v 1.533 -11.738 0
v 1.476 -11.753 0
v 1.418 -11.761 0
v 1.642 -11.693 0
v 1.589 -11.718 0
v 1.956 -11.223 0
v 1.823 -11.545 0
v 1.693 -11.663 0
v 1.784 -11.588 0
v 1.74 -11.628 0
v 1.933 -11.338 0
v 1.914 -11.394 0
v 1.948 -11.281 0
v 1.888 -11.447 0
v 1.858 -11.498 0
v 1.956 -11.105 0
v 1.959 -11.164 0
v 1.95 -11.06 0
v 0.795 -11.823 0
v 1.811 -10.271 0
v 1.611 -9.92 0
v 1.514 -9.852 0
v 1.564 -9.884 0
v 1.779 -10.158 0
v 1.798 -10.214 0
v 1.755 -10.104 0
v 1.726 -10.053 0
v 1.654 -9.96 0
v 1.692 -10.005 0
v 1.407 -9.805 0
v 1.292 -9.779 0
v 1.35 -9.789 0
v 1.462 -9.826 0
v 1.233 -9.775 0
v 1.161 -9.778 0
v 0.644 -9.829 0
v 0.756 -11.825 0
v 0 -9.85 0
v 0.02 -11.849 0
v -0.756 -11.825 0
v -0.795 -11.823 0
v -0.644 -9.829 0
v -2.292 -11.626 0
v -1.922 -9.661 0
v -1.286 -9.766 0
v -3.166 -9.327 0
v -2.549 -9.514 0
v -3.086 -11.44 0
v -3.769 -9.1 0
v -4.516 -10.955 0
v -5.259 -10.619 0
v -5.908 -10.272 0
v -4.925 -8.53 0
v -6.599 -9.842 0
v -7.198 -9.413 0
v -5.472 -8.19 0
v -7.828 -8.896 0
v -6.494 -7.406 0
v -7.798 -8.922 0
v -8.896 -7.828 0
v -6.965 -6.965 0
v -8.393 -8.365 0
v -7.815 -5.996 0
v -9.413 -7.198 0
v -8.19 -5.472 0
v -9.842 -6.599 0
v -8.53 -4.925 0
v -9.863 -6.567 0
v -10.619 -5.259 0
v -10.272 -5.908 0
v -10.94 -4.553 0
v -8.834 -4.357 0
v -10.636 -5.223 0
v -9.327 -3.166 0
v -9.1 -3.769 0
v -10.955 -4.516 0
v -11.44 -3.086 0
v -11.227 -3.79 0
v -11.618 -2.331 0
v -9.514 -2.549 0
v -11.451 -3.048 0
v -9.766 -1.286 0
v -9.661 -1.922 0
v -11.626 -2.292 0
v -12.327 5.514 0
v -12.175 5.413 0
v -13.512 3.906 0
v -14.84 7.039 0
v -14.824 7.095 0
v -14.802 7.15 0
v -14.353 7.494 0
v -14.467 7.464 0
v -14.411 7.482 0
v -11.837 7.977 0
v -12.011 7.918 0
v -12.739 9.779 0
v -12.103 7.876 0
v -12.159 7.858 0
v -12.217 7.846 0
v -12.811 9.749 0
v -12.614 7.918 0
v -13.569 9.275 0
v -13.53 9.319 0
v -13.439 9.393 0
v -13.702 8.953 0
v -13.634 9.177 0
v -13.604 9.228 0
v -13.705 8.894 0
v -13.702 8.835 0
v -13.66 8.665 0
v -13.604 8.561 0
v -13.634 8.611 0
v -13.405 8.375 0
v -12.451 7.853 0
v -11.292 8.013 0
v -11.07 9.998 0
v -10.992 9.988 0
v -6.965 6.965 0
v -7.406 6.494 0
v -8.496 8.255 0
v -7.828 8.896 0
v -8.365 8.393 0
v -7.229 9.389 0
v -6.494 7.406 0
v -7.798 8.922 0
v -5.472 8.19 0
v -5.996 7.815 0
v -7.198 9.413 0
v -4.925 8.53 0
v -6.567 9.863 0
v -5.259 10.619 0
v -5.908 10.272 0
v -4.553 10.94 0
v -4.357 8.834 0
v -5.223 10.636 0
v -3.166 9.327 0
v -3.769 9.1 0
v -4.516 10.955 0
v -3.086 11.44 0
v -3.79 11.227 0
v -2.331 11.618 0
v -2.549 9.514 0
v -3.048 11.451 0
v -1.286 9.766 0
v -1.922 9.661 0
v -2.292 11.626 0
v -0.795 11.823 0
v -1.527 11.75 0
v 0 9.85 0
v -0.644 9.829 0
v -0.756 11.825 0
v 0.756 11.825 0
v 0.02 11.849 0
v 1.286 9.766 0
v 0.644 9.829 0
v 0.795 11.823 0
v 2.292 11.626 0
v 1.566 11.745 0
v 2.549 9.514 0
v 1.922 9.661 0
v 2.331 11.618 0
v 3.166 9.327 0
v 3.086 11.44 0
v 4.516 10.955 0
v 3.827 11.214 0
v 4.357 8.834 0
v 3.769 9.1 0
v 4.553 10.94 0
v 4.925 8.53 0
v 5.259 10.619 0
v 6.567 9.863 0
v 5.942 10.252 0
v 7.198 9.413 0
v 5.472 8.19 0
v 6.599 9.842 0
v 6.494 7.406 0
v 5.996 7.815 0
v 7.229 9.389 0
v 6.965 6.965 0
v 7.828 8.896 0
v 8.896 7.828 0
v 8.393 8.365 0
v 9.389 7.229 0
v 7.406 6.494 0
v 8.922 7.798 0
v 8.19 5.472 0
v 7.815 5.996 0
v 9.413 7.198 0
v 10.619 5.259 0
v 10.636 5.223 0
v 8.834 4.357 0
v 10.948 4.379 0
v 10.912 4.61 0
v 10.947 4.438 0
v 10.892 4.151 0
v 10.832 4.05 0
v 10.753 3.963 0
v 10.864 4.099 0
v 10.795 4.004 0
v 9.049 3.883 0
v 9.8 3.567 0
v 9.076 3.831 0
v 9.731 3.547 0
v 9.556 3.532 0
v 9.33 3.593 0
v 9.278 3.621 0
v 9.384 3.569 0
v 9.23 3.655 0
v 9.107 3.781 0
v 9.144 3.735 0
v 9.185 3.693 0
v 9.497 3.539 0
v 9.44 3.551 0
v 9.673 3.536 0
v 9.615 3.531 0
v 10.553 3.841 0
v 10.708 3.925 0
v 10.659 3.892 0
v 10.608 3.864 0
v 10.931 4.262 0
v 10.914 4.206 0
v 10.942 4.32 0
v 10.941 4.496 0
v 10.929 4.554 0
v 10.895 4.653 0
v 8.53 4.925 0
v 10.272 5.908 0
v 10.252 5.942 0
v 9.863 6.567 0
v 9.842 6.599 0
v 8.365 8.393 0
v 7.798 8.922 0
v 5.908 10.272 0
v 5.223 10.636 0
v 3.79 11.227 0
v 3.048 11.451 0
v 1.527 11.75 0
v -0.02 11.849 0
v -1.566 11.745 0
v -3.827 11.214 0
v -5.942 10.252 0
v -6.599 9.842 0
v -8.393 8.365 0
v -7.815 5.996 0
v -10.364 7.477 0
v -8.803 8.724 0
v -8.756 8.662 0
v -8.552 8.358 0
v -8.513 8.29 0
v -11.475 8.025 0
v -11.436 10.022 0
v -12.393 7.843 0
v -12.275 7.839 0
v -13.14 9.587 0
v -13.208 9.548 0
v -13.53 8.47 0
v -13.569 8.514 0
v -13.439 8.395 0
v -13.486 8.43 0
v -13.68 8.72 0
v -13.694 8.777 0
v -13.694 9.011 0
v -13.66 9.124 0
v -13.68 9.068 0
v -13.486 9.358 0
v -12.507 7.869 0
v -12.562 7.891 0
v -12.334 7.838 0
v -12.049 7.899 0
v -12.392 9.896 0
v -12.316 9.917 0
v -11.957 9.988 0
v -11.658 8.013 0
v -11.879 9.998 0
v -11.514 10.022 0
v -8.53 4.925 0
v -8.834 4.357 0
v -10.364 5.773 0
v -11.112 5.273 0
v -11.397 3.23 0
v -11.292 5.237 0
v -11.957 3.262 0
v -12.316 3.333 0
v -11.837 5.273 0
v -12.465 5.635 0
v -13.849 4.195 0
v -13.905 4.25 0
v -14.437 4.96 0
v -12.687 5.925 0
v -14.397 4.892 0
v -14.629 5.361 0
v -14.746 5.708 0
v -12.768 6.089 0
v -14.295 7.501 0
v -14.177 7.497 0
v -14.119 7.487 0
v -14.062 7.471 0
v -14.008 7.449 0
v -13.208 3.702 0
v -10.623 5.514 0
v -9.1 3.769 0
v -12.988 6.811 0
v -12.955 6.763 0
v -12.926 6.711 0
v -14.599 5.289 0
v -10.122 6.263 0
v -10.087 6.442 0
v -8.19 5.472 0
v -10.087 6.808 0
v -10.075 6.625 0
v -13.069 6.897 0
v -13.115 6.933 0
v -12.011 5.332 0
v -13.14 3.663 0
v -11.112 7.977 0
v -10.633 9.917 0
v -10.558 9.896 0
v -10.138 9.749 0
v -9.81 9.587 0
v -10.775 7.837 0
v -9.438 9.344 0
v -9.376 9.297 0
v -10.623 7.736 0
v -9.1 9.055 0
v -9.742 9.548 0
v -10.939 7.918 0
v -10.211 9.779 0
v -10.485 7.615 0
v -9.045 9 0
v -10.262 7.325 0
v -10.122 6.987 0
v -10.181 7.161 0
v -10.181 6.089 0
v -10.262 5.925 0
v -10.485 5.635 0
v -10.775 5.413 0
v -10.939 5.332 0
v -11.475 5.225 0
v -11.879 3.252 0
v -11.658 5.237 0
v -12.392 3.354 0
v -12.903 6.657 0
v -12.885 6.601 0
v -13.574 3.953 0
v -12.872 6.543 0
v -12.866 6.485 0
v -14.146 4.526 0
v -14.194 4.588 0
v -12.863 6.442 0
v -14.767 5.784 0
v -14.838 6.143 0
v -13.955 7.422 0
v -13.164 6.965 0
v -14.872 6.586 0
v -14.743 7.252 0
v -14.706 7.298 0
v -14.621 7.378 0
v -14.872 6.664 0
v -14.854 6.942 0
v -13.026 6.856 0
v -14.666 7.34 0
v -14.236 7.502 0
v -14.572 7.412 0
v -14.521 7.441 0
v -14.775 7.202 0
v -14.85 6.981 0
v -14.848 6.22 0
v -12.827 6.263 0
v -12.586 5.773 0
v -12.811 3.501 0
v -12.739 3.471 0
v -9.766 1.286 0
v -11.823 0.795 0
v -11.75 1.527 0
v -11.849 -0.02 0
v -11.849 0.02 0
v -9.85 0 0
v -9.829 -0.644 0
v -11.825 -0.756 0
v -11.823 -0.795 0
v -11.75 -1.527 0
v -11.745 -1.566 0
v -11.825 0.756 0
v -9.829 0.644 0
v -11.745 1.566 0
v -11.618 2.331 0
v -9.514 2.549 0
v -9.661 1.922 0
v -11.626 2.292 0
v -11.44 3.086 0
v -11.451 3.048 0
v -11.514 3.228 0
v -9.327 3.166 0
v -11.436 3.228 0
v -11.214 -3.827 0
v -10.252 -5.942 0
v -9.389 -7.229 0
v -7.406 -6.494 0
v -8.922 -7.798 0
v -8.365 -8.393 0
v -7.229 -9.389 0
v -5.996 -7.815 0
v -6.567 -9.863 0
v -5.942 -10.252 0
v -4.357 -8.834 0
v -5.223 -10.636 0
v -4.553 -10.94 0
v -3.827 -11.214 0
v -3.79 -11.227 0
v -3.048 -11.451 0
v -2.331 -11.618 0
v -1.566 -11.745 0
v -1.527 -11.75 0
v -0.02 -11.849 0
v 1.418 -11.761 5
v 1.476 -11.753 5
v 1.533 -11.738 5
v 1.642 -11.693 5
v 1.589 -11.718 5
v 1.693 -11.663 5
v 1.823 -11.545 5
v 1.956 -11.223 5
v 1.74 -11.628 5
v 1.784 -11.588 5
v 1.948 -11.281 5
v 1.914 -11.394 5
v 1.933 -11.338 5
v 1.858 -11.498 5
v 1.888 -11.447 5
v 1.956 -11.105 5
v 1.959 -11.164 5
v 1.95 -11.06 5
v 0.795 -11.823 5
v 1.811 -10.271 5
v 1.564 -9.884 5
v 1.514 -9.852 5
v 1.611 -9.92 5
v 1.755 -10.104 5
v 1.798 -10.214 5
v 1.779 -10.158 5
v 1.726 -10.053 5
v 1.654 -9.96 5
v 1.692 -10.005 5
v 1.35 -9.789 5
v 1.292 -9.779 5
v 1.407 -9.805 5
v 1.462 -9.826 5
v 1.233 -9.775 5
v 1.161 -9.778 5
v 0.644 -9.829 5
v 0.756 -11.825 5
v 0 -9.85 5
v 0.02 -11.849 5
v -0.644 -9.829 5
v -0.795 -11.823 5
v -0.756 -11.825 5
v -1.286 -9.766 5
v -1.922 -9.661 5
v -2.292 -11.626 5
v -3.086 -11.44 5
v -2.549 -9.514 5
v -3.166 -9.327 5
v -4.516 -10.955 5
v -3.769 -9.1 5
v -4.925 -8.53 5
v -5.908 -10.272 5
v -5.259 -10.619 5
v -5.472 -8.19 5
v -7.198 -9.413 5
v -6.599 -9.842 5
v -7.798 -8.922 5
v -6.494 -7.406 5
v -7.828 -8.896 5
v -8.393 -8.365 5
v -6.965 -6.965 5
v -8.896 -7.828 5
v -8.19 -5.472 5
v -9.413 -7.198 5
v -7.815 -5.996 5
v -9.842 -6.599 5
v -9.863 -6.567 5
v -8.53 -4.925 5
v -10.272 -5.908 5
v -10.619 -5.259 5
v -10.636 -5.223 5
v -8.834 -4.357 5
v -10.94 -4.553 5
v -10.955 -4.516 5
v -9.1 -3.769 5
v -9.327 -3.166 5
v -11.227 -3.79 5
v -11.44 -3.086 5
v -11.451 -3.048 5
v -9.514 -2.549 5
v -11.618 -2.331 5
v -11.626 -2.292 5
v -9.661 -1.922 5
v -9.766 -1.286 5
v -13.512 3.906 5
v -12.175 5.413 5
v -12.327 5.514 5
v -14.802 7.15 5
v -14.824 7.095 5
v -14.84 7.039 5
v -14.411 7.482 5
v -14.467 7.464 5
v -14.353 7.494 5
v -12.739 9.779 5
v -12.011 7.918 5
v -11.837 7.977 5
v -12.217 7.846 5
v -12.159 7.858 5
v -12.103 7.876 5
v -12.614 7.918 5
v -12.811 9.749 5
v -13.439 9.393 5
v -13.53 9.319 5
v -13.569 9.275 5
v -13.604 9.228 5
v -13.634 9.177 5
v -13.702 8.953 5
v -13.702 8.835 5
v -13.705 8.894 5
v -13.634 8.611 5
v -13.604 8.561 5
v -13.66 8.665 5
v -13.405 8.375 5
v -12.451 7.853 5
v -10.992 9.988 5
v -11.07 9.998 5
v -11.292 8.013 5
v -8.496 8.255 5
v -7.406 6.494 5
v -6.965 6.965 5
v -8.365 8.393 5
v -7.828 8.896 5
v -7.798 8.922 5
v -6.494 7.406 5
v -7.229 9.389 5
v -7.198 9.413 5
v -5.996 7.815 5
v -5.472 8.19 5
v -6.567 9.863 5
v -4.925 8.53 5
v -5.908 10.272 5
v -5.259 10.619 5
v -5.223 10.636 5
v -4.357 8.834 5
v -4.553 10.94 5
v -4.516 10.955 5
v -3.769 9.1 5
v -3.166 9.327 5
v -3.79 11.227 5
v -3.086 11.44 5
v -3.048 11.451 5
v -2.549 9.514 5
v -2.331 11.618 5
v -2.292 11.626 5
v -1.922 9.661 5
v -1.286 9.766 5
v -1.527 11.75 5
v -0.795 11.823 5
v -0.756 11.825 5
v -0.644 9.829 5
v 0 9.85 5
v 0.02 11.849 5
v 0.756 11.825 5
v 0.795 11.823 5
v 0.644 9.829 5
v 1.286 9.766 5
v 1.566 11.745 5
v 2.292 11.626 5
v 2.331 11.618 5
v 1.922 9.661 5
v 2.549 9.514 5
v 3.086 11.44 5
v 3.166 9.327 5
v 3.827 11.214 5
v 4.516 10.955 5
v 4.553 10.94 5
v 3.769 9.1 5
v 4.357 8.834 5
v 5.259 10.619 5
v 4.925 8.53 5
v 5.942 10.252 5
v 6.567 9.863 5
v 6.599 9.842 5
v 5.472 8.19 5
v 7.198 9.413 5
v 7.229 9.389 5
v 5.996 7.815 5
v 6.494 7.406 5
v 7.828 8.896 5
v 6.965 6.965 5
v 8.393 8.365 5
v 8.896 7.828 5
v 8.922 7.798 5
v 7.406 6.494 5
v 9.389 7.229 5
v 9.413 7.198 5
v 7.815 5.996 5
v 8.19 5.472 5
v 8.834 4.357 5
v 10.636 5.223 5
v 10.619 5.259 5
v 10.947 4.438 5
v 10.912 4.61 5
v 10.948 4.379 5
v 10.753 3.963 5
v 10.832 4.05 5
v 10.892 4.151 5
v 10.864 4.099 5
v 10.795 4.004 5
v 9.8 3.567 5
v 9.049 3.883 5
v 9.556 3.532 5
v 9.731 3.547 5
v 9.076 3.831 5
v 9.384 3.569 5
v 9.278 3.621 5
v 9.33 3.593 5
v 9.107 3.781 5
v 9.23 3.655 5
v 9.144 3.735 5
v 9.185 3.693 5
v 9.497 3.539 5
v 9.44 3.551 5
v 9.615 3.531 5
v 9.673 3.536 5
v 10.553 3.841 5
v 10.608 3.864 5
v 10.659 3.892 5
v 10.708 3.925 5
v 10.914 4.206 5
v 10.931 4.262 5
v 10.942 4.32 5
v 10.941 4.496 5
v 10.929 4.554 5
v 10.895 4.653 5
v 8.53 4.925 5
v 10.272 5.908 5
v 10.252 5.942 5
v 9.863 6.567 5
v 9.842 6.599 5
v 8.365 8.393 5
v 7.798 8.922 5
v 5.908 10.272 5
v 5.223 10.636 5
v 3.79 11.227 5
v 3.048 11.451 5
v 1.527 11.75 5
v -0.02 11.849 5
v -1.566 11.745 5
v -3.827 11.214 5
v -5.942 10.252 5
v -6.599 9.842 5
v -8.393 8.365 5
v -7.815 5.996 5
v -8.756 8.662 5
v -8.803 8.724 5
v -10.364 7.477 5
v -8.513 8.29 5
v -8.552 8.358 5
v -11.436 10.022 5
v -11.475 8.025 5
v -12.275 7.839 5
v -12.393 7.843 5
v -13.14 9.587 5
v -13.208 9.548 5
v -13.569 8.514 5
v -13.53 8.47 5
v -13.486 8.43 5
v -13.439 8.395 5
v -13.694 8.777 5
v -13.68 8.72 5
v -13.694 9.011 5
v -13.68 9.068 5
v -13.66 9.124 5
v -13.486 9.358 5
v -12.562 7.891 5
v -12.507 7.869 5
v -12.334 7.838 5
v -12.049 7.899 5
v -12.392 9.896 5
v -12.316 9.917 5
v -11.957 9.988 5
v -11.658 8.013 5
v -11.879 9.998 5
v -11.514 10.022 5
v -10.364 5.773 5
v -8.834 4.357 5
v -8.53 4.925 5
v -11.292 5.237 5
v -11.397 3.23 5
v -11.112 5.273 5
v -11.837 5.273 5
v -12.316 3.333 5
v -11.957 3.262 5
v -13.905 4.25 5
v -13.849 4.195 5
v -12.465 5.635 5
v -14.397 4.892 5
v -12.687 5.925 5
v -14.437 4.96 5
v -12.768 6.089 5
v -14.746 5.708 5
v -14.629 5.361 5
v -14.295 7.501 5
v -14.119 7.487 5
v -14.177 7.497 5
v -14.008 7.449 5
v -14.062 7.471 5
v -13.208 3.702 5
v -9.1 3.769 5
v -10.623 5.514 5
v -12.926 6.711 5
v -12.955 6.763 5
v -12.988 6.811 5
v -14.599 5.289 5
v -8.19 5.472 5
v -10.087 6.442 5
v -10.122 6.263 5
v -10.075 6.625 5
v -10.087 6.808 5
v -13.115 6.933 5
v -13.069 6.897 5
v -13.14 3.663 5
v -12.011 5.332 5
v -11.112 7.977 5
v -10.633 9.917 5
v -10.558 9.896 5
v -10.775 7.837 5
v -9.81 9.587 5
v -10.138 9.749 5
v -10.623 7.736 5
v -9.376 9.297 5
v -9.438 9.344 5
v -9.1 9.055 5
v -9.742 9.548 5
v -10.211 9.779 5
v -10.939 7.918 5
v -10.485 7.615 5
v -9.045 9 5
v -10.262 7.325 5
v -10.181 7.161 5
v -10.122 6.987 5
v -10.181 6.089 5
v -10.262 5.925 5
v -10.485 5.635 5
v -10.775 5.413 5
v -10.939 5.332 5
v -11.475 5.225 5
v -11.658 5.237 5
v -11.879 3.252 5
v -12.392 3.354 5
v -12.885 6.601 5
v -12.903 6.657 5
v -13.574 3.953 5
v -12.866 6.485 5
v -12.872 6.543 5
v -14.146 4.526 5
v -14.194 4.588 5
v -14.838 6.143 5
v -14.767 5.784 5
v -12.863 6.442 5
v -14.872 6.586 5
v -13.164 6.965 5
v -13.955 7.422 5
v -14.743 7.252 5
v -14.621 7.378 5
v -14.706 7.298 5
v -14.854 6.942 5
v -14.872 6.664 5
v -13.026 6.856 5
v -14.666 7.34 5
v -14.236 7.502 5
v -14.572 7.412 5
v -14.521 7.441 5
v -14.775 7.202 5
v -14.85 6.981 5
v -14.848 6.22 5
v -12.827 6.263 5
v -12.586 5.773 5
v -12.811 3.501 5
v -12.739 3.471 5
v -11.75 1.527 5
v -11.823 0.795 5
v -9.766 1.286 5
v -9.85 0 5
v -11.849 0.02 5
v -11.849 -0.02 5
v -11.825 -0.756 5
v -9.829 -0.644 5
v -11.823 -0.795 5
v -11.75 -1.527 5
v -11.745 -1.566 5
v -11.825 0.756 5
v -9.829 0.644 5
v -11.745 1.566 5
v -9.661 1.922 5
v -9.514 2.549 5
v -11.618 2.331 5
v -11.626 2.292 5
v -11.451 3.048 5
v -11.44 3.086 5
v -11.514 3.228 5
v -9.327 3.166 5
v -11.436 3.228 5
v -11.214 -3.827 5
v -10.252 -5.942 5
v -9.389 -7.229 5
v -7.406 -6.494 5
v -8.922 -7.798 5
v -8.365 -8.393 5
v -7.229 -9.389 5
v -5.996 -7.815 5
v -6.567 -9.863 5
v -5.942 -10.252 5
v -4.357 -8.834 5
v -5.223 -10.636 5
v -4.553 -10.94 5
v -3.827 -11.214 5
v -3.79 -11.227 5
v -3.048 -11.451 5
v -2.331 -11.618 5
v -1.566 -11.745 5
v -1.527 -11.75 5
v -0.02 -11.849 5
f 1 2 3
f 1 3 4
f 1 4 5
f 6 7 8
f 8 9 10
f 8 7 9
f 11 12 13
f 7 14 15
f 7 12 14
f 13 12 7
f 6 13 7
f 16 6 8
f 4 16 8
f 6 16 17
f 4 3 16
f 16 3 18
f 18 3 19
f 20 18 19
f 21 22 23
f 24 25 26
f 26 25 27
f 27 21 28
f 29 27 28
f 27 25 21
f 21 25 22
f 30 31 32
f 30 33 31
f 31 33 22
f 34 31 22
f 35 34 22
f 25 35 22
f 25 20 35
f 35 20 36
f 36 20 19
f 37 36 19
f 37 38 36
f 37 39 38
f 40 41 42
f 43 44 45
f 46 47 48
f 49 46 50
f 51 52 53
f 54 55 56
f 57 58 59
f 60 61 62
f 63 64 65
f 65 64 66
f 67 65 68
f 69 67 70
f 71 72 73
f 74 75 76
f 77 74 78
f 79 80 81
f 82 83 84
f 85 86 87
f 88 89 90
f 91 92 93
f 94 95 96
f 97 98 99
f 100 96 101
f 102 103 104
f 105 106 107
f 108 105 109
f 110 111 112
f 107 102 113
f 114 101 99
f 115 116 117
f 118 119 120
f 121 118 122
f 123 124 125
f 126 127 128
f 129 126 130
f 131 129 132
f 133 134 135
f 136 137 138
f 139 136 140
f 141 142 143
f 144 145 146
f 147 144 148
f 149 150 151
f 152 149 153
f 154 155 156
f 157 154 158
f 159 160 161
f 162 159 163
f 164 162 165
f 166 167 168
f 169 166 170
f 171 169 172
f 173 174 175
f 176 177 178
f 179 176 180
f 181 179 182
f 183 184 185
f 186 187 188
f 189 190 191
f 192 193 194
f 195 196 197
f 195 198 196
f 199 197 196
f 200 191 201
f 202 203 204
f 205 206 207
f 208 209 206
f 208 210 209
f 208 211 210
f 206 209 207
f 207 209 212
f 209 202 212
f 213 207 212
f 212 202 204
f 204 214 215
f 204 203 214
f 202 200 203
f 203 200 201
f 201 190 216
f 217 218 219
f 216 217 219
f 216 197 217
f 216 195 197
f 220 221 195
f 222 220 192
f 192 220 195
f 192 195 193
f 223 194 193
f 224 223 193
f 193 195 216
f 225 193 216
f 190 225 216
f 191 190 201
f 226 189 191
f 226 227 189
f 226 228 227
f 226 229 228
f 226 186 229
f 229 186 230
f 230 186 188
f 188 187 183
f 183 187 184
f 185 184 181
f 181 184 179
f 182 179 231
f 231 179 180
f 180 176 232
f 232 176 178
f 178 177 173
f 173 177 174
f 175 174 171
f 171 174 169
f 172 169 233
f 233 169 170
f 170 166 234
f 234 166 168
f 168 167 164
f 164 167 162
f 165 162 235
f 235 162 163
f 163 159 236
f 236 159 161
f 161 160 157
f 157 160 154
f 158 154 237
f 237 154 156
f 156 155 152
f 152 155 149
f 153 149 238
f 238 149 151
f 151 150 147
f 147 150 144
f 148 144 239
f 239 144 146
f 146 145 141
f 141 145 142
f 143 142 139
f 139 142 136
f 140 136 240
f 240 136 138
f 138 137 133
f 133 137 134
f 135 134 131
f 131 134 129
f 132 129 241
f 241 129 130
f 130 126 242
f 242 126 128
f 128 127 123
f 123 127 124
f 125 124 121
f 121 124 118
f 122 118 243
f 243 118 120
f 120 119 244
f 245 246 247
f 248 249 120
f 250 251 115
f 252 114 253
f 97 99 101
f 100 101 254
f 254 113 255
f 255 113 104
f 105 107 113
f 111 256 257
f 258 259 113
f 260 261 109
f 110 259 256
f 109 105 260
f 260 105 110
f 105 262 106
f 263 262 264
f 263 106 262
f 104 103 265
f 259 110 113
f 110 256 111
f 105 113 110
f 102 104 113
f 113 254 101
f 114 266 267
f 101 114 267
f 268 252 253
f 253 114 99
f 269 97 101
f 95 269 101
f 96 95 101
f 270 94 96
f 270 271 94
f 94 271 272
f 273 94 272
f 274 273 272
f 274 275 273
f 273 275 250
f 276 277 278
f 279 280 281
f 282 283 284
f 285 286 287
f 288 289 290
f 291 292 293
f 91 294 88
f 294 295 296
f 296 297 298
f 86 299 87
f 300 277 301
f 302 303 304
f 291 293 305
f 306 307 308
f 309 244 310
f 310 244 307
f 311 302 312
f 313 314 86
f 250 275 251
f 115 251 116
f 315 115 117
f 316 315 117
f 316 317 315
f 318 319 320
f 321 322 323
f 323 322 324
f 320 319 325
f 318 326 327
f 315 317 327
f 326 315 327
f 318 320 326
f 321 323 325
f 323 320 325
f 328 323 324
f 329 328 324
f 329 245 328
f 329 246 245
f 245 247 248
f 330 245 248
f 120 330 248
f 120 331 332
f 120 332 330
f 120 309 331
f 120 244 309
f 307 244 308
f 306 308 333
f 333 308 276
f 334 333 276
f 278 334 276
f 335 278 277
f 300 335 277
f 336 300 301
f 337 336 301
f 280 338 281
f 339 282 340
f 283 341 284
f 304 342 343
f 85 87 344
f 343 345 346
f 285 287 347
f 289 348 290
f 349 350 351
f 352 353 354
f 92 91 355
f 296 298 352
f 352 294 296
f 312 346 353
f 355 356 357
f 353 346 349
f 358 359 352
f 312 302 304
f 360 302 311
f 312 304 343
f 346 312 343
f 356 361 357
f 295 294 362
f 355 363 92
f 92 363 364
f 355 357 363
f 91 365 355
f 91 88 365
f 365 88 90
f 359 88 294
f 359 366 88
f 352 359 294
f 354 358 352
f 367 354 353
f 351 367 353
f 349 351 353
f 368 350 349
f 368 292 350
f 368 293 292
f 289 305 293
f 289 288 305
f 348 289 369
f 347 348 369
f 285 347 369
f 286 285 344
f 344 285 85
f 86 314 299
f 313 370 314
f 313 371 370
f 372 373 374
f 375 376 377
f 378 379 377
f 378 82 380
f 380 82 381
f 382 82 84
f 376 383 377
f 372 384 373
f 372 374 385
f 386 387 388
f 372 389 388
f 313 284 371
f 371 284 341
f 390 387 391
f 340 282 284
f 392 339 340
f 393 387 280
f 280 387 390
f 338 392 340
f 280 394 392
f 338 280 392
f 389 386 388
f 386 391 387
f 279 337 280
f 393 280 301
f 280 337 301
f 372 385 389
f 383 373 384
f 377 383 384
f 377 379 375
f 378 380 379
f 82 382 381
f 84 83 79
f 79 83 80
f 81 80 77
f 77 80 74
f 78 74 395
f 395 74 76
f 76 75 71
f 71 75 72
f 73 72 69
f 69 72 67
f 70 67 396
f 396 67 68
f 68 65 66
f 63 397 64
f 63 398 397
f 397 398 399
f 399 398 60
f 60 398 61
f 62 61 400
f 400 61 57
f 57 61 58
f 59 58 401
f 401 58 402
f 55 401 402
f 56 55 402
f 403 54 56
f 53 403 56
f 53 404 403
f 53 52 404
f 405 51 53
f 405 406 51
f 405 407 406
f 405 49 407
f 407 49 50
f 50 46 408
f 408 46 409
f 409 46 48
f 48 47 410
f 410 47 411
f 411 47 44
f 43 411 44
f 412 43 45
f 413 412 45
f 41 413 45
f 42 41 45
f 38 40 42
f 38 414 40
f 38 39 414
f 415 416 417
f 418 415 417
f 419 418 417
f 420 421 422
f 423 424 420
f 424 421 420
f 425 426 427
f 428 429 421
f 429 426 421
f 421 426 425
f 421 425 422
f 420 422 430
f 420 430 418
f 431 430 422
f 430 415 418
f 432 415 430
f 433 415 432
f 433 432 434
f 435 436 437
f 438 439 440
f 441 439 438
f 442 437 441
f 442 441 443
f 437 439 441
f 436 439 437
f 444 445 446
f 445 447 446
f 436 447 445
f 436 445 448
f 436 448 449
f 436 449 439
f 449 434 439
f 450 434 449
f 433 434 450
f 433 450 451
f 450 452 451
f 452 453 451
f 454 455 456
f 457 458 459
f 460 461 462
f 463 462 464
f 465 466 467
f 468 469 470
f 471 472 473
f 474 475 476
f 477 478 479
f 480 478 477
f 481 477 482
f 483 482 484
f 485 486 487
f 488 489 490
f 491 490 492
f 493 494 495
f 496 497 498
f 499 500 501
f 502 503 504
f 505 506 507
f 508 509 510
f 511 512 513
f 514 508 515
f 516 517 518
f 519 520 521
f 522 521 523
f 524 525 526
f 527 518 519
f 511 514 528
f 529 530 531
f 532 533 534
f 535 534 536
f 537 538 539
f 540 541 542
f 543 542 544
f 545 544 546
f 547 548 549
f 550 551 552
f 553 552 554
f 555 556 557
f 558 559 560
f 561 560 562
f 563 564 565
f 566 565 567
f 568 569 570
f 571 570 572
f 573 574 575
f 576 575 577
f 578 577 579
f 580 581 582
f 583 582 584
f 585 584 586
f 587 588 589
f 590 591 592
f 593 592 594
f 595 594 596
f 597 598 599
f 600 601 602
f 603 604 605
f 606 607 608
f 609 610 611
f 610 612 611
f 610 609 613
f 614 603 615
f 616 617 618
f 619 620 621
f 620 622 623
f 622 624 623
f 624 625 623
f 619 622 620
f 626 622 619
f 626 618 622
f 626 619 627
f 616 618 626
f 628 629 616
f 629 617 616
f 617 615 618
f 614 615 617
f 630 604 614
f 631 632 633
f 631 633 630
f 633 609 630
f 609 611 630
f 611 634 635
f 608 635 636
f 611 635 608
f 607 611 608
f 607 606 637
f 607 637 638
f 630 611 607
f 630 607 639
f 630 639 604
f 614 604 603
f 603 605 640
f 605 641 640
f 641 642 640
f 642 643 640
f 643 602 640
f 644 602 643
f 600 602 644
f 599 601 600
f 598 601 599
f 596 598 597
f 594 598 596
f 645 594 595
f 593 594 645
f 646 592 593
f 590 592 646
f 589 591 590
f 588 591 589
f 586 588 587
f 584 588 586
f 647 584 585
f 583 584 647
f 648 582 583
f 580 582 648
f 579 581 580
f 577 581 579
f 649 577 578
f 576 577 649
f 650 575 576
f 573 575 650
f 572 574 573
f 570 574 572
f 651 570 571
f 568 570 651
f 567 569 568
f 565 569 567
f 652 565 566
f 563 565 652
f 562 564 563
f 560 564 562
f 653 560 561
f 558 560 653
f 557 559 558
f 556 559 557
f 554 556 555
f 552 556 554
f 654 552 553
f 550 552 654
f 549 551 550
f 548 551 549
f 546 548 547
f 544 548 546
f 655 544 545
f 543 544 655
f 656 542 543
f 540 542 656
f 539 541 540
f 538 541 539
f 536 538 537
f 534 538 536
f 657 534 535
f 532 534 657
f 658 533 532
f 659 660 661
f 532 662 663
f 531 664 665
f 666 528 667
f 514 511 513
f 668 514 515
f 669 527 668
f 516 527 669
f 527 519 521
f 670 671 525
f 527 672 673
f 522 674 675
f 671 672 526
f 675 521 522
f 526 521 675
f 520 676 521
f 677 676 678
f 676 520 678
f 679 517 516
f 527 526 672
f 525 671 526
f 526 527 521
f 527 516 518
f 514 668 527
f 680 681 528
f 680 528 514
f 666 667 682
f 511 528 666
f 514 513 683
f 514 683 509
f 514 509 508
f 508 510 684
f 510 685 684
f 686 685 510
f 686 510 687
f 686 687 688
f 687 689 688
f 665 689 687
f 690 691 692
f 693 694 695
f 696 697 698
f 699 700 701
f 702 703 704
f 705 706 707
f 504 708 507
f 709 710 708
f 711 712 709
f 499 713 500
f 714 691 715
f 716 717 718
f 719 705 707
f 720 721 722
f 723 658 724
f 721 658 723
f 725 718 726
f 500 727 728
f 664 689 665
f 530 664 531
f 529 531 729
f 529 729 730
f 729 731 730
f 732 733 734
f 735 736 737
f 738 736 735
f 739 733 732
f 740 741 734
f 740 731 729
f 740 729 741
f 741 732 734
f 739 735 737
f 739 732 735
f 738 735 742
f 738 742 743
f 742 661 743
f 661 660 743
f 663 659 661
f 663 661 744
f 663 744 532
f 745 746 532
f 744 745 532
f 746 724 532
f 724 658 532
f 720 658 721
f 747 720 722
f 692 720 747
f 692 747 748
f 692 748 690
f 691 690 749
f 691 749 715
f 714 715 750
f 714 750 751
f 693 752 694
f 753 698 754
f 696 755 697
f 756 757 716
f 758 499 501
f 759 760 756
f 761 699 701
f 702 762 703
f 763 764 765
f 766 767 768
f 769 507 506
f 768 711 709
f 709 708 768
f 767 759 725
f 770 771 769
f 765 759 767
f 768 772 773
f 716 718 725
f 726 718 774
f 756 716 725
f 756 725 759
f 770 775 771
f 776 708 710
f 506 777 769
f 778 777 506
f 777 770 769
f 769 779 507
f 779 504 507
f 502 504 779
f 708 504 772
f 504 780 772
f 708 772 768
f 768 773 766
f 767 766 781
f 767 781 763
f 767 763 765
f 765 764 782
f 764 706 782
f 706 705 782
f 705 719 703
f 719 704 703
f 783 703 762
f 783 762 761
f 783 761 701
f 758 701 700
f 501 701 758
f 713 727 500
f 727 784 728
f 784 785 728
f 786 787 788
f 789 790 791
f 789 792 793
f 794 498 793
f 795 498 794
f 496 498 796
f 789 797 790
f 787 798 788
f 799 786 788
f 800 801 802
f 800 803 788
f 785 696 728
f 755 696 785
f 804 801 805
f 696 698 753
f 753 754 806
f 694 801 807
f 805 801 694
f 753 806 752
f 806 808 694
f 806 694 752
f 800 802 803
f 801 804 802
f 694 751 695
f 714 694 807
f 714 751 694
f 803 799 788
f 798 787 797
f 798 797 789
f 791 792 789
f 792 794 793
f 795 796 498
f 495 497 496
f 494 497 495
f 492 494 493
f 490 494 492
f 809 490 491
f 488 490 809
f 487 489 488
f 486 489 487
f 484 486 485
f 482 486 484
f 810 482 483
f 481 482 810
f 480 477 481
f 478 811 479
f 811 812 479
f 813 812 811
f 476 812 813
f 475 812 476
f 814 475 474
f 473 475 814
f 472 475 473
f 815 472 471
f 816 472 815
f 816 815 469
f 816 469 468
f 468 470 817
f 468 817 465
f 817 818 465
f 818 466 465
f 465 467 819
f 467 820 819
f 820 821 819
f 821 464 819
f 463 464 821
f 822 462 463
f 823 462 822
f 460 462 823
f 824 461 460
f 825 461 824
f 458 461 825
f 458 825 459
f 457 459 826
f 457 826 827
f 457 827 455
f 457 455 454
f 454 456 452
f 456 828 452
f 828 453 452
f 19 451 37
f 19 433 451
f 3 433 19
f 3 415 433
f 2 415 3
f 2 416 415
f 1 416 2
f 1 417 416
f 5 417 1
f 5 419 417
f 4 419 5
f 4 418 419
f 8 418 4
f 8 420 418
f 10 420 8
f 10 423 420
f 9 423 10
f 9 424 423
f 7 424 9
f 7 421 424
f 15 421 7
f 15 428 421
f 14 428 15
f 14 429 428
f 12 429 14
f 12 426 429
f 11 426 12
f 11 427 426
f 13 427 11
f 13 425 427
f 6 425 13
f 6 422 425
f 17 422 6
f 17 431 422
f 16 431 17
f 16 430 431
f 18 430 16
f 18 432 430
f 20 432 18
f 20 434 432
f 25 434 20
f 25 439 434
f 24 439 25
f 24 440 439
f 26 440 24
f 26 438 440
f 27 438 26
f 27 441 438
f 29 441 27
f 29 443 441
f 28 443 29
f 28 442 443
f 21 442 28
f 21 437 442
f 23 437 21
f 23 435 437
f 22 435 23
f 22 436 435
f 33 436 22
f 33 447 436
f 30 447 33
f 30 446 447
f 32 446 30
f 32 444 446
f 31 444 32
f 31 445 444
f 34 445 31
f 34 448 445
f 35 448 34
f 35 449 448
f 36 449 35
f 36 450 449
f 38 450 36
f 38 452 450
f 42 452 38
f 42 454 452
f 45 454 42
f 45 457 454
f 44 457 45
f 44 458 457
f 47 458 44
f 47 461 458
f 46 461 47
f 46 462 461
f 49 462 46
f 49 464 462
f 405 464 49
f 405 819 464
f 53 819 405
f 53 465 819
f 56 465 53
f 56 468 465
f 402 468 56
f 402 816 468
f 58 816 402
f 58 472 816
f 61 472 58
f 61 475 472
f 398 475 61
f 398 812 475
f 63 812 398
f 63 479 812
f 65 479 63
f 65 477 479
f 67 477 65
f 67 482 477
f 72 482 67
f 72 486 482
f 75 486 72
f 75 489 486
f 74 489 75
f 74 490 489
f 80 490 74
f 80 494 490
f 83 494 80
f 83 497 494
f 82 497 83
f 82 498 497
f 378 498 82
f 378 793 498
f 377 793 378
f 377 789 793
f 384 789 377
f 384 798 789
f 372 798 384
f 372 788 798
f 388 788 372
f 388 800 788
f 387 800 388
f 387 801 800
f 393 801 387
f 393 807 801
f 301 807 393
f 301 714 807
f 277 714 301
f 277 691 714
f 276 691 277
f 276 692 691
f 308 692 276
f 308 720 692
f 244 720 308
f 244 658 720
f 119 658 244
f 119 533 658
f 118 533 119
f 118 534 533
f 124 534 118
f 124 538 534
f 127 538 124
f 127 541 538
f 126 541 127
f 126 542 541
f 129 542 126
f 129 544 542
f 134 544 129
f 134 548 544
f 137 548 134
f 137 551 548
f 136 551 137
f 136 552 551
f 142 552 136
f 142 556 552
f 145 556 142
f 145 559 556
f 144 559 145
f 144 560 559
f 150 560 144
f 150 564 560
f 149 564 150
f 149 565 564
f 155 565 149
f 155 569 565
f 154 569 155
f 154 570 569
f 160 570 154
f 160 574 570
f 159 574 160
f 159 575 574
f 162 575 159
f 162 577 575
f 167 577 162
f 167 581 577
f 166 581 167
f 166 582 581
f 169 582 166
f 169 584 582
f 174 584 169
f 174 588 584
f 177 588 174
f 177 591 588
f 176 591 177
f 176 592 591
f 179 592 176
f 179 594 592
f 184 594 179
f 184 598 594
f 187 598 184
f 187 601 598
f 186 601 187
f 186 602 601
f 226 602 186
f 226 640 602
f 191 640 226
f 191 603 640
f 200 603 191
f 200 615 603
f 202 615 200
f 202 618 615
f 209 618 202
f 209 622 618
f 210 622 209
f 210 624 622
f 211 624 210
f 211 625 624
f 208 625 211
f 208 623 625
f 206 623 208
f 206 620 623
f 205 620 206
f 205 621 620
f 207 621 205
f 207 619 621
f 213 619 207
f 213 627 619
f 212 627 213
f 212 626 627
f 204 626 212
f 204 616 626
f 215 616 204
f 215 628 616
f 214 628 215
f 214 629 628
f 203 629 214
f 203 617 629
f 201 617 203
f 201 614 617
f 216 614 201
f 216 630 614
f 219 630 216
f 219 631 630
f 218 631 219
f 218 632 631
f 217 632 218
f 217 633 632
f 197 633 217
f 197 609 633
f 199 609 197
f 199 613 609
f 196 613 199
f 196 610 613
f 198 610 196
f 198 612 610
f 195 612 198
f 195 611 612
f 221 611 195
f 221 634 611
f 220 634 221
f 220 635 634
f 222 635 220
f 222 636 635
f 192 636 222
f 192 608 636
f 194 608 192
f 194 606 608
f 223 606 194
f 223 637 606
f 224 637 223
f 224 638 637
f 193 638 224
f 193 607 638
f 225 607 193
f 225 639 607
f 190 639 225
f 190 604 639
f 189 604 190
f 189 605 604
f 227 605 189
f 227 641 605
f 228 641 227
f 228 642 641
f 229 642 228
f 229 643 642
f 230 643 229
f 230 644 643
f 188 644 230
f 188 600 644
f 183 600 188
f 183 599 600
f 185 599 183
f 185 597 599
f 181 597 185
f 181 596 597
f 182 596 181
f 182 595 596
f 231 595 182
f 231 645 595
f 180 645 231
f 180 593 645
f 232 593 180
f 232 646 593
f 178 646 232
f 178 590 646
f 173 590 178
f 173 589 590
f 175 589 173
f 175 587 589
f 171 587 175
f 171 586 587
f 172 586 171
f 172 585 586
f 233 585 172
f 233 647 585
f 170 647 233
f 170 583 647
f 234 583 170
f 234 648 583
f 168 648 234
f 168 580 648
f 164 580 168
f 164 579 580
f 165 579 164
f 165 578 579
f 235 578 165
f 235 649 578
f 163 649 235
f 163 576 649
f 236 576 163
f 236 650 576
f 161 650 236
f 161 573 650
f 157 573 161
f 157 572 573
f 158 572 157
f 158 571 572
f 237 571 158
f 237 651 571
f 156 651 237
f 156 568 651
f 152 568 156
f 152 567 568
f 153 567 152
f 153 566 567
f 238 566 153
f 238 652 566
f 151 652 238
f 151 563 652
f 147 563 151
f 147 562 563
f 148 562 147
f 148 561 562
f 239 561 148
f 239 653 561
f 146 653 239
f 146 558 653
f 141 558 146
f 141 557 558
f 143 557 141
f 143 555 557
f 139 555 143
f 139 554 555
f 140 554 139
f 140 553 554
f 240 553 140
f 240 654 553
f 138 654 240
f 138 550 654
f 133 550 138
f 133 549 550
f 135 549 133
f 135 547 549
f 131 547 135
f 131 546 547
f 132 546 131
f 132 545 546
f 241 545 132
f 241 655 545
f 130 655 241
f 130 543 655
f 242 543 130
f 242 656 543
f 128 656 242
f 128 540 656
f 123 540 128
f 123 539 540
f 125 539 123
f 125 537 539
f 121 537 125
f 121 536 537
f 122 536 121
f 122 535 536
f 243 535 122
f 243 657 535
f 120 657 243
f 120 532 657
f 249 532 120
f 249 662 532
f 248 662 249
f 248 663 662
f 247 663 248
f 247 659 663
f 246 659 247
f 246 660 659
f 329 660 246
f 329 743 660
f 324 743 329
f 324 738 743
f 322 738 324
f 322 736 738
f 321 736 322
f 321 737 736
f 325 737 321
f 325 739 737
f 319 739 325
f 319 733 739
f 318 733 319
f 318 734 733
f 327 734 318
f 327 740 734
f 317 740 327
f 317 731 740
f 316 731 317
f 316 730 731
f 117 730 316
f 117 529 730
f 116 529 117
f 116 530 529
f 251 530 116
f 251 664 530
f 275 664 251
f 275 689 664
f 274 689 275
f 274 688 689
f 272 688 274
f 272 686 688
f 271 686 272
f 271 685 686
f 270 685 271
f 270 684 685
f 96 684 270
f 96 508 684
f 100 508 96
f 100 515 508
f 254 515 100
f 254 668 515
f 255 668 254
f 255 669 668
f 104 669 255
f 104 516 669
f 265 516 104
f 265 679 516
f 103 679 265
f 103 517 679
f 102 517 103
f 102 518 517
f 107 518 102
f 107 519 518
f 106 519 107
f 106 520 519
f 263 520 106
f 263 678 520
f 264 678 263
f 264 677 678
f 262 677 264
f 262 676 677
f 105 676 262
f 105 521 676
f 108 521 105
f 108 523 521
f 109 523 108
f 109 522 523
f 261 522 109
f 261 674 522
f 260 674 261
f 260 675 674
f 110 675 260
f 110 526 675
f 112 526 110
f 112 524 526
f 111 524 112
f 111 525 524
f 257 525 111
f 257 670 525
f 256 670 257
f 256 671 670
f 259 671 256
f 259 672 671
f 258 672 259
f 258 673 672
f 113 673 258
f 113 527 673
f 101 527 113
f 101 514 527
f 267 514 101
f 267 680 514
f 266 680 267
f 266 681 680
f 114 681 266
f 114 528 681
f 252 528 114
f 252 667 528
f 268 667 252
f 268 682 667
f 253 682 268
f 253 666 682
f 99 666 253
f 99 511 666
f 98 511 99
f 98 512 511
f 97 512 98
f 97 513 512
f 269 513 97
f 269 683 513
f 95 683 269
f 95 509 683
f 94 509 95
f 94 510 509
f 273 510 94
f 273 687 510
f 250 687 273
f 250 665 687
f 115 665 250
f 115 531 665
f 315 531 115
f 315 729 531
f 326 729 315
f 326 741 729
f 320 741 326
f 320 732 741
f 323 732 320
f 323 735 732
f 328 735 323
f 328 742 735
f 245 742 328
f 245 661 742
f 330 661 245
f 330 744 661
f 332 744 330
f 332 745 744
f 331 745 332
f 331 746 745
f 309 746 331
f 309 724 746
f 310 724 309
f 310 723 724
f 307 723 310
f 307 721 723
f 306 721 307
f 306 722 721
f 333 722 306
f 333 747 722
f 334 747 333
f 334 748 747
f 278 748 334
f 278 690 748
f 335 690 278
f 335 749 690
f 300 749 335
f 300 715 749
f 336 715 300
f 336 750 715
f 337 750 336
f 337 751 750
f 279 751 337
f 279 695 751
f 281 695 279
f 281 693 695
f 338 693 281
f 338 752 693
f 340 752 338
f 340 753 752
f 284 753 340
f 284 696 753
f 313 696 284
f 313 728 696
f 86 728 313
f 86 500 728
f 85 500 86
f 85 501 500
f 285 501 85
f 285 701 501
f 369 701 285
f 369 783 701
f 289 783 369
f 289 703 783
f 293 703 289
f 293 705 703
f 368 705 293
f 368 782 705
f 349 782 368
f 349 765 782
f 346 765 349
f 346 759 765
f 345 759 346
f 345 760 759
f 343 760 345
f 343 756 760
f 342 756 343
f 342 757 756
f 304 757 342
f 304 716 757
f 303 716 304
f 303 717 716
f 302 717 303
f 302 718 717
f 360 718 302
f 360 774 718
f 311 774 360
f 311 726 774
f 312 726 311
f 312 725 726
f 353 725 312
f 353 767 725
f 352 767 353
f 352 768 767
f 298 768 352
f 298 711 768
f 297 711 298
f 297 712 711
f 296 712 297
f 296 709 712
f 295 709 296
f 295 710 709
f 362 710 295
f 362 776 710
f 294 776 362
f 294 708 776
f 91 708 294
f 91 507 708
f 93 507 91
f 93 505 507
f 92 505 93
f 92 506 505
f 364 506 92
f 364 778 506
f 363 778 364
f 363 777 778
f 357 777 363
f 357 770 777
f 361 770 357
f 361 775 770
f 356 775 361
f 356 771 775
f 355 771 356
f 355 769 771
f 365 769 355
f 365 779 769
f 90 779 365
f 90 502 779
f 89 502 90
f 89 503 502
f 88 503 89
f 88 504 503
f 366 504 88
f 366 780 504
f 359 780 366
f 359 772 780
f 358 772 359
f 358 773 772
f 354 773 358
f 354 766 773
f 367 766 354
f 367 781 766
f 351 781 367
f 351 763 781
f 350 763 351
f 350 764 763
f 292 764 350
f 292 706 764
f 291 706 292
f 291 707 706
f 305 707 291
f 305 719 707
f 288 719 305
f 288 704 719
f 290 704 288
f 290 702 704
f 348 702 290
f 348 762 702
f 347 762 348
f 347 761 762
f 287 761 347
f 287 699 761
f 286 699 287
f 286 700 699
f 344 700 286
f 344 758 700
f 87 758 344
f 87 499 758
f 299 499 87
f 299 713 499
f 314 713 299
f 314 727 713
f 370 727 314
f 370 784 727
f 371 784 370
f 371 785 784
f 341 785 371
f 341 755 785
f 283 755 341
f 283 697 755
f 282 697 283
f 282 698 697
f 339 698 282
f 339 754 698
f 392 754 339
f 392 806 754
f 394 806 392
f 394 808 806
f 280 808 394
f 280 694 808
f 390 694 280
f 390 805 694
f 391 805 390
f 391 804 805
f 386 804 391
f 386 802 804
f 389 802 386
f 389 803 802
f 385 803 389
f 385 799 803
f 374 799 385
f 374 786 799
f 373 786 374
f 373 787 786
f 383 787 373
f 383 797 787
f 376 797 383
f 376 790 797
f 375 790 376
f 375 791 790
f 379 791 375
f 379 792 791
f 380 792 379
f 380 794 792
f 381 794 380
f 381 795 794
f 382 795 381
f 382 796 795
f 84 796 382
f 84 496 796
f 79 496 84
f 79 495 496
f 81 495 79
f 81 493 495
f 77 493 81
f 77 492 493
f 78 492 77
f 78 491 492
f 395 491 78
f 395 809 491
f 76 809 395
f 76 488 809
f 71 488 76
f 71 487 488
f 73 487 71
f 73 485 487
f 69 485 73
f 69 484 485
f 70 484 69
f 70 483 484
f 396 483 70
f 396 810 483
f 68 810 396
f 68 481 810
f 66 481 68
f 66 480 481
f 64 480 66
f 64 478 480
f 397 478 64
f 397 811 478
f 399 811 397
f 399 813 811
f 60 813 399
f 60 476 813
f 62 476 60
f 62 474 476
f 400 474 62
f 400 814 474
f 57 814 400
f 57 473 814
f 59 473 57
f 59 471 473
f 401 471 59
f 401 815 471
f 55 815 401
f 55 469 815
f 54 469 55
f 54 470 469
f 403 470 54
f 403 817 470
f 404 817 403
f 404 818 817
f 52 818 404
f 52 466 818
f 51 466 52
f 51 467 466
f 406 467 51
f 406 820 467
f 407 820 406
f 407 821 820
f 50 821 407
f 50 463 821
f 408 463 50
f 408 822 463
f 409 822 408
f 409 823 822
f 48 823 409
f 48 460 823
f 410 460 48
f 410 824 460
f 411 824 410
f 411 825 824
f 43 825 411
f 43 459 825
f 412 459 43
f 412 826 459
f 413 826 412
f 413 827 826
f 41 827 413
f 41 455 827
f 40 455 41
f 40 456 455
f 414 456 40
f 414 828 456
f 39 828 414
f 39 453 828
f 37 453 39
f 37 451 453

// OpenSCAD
// ==========================================
// Proyecto: piezas3D – Puntero láser estelar
// Componente: Grapa del cable del láser
// Descripción: Anillo abierto que se calza a presión sobre el tubo del láser, entre la tapa
//              trasera y la cuna, con un ojal exterior a angulo_cable donde los 2 hilos entran a
//              presión por una ranura. Mantiene el cable pegado al láser y hace de alivio de tensión:
//              un tirón del cable queda en la grapa y no llega a los contactos. Se imprime plana.
// ==========================================

// --- PARÁMETROS Y CONSTANTES ---
include <puntero_laser_parametros.scad>

/* [Hidden] */
r_int_grapa = diametro_laser/2 - holgura("presion");
r_ext_grapa = r_int_grapa + pared_grapa;
r_int_ojal = (2*d_hilo + 0.2)/2;   // los 2 hilos lado a lado, ajustados: es el alivio de tensión
r_centro_ojal = r_ext_grapa + r_int_ojal;
ancho_entrada_ojal = d_hilo - 0.2;
angulo_abertura = angulo_cable + 180;   // la abertura queda del lado opuesto al cable
redondeo_grapa = 0.6;

// --- MÓDULOS PRINCIPALES Y ENSAMBLAJE ---
ensamblaje_principal();

module ensamblaje_principal() {
    pieza_grapa_cable();
}

module pieza_grapa_cable() {
    linear_extrude(height = ancho_grapa)
        offset(r = redondeo_grapa) offset(delta = -redondeo_grapa)
            difference() {
                union() {
                    circle(r = r_ext_grapa, $fn = 96);
                    rotate(angulo_cable) translate([r_centro_ojal, 0]) circle(r = r_int_ojal + pared_grapa, $fn = 48);
                }
                circle(r = r_int_grapa, $fn = 96);
                rotate(angulo_cable) translate([r_centro_ojal, 0]) circle(r = r_int_ojal, $fn = 48);
                // ranura de entrada del ojal, hacia afuera
                rotate(angulo_cable) translate([r_centro_ojal, -ancho_entrada_ojal/2])
                    square([r_int_ojal + pared_grapa + 1, ancho_entrada_ojal]);
                abertura_anillo();
            }
}

// Sector de abertura_grapa grados para calzar la grapa sobre el tubo
module abertura_anillo() {
    r = r_ext_grapa + 1;
    rotate(angulo_abertura)
        polygon([[0, 0],
                 for (a = [-abertura_grapa/2:abertura_grapa/10:abertura_grapa/2]) [r*cos(a)/cos(abertura_grapa/20), r*sin(a)/cos(abertura_grapa/20)]]);
}
